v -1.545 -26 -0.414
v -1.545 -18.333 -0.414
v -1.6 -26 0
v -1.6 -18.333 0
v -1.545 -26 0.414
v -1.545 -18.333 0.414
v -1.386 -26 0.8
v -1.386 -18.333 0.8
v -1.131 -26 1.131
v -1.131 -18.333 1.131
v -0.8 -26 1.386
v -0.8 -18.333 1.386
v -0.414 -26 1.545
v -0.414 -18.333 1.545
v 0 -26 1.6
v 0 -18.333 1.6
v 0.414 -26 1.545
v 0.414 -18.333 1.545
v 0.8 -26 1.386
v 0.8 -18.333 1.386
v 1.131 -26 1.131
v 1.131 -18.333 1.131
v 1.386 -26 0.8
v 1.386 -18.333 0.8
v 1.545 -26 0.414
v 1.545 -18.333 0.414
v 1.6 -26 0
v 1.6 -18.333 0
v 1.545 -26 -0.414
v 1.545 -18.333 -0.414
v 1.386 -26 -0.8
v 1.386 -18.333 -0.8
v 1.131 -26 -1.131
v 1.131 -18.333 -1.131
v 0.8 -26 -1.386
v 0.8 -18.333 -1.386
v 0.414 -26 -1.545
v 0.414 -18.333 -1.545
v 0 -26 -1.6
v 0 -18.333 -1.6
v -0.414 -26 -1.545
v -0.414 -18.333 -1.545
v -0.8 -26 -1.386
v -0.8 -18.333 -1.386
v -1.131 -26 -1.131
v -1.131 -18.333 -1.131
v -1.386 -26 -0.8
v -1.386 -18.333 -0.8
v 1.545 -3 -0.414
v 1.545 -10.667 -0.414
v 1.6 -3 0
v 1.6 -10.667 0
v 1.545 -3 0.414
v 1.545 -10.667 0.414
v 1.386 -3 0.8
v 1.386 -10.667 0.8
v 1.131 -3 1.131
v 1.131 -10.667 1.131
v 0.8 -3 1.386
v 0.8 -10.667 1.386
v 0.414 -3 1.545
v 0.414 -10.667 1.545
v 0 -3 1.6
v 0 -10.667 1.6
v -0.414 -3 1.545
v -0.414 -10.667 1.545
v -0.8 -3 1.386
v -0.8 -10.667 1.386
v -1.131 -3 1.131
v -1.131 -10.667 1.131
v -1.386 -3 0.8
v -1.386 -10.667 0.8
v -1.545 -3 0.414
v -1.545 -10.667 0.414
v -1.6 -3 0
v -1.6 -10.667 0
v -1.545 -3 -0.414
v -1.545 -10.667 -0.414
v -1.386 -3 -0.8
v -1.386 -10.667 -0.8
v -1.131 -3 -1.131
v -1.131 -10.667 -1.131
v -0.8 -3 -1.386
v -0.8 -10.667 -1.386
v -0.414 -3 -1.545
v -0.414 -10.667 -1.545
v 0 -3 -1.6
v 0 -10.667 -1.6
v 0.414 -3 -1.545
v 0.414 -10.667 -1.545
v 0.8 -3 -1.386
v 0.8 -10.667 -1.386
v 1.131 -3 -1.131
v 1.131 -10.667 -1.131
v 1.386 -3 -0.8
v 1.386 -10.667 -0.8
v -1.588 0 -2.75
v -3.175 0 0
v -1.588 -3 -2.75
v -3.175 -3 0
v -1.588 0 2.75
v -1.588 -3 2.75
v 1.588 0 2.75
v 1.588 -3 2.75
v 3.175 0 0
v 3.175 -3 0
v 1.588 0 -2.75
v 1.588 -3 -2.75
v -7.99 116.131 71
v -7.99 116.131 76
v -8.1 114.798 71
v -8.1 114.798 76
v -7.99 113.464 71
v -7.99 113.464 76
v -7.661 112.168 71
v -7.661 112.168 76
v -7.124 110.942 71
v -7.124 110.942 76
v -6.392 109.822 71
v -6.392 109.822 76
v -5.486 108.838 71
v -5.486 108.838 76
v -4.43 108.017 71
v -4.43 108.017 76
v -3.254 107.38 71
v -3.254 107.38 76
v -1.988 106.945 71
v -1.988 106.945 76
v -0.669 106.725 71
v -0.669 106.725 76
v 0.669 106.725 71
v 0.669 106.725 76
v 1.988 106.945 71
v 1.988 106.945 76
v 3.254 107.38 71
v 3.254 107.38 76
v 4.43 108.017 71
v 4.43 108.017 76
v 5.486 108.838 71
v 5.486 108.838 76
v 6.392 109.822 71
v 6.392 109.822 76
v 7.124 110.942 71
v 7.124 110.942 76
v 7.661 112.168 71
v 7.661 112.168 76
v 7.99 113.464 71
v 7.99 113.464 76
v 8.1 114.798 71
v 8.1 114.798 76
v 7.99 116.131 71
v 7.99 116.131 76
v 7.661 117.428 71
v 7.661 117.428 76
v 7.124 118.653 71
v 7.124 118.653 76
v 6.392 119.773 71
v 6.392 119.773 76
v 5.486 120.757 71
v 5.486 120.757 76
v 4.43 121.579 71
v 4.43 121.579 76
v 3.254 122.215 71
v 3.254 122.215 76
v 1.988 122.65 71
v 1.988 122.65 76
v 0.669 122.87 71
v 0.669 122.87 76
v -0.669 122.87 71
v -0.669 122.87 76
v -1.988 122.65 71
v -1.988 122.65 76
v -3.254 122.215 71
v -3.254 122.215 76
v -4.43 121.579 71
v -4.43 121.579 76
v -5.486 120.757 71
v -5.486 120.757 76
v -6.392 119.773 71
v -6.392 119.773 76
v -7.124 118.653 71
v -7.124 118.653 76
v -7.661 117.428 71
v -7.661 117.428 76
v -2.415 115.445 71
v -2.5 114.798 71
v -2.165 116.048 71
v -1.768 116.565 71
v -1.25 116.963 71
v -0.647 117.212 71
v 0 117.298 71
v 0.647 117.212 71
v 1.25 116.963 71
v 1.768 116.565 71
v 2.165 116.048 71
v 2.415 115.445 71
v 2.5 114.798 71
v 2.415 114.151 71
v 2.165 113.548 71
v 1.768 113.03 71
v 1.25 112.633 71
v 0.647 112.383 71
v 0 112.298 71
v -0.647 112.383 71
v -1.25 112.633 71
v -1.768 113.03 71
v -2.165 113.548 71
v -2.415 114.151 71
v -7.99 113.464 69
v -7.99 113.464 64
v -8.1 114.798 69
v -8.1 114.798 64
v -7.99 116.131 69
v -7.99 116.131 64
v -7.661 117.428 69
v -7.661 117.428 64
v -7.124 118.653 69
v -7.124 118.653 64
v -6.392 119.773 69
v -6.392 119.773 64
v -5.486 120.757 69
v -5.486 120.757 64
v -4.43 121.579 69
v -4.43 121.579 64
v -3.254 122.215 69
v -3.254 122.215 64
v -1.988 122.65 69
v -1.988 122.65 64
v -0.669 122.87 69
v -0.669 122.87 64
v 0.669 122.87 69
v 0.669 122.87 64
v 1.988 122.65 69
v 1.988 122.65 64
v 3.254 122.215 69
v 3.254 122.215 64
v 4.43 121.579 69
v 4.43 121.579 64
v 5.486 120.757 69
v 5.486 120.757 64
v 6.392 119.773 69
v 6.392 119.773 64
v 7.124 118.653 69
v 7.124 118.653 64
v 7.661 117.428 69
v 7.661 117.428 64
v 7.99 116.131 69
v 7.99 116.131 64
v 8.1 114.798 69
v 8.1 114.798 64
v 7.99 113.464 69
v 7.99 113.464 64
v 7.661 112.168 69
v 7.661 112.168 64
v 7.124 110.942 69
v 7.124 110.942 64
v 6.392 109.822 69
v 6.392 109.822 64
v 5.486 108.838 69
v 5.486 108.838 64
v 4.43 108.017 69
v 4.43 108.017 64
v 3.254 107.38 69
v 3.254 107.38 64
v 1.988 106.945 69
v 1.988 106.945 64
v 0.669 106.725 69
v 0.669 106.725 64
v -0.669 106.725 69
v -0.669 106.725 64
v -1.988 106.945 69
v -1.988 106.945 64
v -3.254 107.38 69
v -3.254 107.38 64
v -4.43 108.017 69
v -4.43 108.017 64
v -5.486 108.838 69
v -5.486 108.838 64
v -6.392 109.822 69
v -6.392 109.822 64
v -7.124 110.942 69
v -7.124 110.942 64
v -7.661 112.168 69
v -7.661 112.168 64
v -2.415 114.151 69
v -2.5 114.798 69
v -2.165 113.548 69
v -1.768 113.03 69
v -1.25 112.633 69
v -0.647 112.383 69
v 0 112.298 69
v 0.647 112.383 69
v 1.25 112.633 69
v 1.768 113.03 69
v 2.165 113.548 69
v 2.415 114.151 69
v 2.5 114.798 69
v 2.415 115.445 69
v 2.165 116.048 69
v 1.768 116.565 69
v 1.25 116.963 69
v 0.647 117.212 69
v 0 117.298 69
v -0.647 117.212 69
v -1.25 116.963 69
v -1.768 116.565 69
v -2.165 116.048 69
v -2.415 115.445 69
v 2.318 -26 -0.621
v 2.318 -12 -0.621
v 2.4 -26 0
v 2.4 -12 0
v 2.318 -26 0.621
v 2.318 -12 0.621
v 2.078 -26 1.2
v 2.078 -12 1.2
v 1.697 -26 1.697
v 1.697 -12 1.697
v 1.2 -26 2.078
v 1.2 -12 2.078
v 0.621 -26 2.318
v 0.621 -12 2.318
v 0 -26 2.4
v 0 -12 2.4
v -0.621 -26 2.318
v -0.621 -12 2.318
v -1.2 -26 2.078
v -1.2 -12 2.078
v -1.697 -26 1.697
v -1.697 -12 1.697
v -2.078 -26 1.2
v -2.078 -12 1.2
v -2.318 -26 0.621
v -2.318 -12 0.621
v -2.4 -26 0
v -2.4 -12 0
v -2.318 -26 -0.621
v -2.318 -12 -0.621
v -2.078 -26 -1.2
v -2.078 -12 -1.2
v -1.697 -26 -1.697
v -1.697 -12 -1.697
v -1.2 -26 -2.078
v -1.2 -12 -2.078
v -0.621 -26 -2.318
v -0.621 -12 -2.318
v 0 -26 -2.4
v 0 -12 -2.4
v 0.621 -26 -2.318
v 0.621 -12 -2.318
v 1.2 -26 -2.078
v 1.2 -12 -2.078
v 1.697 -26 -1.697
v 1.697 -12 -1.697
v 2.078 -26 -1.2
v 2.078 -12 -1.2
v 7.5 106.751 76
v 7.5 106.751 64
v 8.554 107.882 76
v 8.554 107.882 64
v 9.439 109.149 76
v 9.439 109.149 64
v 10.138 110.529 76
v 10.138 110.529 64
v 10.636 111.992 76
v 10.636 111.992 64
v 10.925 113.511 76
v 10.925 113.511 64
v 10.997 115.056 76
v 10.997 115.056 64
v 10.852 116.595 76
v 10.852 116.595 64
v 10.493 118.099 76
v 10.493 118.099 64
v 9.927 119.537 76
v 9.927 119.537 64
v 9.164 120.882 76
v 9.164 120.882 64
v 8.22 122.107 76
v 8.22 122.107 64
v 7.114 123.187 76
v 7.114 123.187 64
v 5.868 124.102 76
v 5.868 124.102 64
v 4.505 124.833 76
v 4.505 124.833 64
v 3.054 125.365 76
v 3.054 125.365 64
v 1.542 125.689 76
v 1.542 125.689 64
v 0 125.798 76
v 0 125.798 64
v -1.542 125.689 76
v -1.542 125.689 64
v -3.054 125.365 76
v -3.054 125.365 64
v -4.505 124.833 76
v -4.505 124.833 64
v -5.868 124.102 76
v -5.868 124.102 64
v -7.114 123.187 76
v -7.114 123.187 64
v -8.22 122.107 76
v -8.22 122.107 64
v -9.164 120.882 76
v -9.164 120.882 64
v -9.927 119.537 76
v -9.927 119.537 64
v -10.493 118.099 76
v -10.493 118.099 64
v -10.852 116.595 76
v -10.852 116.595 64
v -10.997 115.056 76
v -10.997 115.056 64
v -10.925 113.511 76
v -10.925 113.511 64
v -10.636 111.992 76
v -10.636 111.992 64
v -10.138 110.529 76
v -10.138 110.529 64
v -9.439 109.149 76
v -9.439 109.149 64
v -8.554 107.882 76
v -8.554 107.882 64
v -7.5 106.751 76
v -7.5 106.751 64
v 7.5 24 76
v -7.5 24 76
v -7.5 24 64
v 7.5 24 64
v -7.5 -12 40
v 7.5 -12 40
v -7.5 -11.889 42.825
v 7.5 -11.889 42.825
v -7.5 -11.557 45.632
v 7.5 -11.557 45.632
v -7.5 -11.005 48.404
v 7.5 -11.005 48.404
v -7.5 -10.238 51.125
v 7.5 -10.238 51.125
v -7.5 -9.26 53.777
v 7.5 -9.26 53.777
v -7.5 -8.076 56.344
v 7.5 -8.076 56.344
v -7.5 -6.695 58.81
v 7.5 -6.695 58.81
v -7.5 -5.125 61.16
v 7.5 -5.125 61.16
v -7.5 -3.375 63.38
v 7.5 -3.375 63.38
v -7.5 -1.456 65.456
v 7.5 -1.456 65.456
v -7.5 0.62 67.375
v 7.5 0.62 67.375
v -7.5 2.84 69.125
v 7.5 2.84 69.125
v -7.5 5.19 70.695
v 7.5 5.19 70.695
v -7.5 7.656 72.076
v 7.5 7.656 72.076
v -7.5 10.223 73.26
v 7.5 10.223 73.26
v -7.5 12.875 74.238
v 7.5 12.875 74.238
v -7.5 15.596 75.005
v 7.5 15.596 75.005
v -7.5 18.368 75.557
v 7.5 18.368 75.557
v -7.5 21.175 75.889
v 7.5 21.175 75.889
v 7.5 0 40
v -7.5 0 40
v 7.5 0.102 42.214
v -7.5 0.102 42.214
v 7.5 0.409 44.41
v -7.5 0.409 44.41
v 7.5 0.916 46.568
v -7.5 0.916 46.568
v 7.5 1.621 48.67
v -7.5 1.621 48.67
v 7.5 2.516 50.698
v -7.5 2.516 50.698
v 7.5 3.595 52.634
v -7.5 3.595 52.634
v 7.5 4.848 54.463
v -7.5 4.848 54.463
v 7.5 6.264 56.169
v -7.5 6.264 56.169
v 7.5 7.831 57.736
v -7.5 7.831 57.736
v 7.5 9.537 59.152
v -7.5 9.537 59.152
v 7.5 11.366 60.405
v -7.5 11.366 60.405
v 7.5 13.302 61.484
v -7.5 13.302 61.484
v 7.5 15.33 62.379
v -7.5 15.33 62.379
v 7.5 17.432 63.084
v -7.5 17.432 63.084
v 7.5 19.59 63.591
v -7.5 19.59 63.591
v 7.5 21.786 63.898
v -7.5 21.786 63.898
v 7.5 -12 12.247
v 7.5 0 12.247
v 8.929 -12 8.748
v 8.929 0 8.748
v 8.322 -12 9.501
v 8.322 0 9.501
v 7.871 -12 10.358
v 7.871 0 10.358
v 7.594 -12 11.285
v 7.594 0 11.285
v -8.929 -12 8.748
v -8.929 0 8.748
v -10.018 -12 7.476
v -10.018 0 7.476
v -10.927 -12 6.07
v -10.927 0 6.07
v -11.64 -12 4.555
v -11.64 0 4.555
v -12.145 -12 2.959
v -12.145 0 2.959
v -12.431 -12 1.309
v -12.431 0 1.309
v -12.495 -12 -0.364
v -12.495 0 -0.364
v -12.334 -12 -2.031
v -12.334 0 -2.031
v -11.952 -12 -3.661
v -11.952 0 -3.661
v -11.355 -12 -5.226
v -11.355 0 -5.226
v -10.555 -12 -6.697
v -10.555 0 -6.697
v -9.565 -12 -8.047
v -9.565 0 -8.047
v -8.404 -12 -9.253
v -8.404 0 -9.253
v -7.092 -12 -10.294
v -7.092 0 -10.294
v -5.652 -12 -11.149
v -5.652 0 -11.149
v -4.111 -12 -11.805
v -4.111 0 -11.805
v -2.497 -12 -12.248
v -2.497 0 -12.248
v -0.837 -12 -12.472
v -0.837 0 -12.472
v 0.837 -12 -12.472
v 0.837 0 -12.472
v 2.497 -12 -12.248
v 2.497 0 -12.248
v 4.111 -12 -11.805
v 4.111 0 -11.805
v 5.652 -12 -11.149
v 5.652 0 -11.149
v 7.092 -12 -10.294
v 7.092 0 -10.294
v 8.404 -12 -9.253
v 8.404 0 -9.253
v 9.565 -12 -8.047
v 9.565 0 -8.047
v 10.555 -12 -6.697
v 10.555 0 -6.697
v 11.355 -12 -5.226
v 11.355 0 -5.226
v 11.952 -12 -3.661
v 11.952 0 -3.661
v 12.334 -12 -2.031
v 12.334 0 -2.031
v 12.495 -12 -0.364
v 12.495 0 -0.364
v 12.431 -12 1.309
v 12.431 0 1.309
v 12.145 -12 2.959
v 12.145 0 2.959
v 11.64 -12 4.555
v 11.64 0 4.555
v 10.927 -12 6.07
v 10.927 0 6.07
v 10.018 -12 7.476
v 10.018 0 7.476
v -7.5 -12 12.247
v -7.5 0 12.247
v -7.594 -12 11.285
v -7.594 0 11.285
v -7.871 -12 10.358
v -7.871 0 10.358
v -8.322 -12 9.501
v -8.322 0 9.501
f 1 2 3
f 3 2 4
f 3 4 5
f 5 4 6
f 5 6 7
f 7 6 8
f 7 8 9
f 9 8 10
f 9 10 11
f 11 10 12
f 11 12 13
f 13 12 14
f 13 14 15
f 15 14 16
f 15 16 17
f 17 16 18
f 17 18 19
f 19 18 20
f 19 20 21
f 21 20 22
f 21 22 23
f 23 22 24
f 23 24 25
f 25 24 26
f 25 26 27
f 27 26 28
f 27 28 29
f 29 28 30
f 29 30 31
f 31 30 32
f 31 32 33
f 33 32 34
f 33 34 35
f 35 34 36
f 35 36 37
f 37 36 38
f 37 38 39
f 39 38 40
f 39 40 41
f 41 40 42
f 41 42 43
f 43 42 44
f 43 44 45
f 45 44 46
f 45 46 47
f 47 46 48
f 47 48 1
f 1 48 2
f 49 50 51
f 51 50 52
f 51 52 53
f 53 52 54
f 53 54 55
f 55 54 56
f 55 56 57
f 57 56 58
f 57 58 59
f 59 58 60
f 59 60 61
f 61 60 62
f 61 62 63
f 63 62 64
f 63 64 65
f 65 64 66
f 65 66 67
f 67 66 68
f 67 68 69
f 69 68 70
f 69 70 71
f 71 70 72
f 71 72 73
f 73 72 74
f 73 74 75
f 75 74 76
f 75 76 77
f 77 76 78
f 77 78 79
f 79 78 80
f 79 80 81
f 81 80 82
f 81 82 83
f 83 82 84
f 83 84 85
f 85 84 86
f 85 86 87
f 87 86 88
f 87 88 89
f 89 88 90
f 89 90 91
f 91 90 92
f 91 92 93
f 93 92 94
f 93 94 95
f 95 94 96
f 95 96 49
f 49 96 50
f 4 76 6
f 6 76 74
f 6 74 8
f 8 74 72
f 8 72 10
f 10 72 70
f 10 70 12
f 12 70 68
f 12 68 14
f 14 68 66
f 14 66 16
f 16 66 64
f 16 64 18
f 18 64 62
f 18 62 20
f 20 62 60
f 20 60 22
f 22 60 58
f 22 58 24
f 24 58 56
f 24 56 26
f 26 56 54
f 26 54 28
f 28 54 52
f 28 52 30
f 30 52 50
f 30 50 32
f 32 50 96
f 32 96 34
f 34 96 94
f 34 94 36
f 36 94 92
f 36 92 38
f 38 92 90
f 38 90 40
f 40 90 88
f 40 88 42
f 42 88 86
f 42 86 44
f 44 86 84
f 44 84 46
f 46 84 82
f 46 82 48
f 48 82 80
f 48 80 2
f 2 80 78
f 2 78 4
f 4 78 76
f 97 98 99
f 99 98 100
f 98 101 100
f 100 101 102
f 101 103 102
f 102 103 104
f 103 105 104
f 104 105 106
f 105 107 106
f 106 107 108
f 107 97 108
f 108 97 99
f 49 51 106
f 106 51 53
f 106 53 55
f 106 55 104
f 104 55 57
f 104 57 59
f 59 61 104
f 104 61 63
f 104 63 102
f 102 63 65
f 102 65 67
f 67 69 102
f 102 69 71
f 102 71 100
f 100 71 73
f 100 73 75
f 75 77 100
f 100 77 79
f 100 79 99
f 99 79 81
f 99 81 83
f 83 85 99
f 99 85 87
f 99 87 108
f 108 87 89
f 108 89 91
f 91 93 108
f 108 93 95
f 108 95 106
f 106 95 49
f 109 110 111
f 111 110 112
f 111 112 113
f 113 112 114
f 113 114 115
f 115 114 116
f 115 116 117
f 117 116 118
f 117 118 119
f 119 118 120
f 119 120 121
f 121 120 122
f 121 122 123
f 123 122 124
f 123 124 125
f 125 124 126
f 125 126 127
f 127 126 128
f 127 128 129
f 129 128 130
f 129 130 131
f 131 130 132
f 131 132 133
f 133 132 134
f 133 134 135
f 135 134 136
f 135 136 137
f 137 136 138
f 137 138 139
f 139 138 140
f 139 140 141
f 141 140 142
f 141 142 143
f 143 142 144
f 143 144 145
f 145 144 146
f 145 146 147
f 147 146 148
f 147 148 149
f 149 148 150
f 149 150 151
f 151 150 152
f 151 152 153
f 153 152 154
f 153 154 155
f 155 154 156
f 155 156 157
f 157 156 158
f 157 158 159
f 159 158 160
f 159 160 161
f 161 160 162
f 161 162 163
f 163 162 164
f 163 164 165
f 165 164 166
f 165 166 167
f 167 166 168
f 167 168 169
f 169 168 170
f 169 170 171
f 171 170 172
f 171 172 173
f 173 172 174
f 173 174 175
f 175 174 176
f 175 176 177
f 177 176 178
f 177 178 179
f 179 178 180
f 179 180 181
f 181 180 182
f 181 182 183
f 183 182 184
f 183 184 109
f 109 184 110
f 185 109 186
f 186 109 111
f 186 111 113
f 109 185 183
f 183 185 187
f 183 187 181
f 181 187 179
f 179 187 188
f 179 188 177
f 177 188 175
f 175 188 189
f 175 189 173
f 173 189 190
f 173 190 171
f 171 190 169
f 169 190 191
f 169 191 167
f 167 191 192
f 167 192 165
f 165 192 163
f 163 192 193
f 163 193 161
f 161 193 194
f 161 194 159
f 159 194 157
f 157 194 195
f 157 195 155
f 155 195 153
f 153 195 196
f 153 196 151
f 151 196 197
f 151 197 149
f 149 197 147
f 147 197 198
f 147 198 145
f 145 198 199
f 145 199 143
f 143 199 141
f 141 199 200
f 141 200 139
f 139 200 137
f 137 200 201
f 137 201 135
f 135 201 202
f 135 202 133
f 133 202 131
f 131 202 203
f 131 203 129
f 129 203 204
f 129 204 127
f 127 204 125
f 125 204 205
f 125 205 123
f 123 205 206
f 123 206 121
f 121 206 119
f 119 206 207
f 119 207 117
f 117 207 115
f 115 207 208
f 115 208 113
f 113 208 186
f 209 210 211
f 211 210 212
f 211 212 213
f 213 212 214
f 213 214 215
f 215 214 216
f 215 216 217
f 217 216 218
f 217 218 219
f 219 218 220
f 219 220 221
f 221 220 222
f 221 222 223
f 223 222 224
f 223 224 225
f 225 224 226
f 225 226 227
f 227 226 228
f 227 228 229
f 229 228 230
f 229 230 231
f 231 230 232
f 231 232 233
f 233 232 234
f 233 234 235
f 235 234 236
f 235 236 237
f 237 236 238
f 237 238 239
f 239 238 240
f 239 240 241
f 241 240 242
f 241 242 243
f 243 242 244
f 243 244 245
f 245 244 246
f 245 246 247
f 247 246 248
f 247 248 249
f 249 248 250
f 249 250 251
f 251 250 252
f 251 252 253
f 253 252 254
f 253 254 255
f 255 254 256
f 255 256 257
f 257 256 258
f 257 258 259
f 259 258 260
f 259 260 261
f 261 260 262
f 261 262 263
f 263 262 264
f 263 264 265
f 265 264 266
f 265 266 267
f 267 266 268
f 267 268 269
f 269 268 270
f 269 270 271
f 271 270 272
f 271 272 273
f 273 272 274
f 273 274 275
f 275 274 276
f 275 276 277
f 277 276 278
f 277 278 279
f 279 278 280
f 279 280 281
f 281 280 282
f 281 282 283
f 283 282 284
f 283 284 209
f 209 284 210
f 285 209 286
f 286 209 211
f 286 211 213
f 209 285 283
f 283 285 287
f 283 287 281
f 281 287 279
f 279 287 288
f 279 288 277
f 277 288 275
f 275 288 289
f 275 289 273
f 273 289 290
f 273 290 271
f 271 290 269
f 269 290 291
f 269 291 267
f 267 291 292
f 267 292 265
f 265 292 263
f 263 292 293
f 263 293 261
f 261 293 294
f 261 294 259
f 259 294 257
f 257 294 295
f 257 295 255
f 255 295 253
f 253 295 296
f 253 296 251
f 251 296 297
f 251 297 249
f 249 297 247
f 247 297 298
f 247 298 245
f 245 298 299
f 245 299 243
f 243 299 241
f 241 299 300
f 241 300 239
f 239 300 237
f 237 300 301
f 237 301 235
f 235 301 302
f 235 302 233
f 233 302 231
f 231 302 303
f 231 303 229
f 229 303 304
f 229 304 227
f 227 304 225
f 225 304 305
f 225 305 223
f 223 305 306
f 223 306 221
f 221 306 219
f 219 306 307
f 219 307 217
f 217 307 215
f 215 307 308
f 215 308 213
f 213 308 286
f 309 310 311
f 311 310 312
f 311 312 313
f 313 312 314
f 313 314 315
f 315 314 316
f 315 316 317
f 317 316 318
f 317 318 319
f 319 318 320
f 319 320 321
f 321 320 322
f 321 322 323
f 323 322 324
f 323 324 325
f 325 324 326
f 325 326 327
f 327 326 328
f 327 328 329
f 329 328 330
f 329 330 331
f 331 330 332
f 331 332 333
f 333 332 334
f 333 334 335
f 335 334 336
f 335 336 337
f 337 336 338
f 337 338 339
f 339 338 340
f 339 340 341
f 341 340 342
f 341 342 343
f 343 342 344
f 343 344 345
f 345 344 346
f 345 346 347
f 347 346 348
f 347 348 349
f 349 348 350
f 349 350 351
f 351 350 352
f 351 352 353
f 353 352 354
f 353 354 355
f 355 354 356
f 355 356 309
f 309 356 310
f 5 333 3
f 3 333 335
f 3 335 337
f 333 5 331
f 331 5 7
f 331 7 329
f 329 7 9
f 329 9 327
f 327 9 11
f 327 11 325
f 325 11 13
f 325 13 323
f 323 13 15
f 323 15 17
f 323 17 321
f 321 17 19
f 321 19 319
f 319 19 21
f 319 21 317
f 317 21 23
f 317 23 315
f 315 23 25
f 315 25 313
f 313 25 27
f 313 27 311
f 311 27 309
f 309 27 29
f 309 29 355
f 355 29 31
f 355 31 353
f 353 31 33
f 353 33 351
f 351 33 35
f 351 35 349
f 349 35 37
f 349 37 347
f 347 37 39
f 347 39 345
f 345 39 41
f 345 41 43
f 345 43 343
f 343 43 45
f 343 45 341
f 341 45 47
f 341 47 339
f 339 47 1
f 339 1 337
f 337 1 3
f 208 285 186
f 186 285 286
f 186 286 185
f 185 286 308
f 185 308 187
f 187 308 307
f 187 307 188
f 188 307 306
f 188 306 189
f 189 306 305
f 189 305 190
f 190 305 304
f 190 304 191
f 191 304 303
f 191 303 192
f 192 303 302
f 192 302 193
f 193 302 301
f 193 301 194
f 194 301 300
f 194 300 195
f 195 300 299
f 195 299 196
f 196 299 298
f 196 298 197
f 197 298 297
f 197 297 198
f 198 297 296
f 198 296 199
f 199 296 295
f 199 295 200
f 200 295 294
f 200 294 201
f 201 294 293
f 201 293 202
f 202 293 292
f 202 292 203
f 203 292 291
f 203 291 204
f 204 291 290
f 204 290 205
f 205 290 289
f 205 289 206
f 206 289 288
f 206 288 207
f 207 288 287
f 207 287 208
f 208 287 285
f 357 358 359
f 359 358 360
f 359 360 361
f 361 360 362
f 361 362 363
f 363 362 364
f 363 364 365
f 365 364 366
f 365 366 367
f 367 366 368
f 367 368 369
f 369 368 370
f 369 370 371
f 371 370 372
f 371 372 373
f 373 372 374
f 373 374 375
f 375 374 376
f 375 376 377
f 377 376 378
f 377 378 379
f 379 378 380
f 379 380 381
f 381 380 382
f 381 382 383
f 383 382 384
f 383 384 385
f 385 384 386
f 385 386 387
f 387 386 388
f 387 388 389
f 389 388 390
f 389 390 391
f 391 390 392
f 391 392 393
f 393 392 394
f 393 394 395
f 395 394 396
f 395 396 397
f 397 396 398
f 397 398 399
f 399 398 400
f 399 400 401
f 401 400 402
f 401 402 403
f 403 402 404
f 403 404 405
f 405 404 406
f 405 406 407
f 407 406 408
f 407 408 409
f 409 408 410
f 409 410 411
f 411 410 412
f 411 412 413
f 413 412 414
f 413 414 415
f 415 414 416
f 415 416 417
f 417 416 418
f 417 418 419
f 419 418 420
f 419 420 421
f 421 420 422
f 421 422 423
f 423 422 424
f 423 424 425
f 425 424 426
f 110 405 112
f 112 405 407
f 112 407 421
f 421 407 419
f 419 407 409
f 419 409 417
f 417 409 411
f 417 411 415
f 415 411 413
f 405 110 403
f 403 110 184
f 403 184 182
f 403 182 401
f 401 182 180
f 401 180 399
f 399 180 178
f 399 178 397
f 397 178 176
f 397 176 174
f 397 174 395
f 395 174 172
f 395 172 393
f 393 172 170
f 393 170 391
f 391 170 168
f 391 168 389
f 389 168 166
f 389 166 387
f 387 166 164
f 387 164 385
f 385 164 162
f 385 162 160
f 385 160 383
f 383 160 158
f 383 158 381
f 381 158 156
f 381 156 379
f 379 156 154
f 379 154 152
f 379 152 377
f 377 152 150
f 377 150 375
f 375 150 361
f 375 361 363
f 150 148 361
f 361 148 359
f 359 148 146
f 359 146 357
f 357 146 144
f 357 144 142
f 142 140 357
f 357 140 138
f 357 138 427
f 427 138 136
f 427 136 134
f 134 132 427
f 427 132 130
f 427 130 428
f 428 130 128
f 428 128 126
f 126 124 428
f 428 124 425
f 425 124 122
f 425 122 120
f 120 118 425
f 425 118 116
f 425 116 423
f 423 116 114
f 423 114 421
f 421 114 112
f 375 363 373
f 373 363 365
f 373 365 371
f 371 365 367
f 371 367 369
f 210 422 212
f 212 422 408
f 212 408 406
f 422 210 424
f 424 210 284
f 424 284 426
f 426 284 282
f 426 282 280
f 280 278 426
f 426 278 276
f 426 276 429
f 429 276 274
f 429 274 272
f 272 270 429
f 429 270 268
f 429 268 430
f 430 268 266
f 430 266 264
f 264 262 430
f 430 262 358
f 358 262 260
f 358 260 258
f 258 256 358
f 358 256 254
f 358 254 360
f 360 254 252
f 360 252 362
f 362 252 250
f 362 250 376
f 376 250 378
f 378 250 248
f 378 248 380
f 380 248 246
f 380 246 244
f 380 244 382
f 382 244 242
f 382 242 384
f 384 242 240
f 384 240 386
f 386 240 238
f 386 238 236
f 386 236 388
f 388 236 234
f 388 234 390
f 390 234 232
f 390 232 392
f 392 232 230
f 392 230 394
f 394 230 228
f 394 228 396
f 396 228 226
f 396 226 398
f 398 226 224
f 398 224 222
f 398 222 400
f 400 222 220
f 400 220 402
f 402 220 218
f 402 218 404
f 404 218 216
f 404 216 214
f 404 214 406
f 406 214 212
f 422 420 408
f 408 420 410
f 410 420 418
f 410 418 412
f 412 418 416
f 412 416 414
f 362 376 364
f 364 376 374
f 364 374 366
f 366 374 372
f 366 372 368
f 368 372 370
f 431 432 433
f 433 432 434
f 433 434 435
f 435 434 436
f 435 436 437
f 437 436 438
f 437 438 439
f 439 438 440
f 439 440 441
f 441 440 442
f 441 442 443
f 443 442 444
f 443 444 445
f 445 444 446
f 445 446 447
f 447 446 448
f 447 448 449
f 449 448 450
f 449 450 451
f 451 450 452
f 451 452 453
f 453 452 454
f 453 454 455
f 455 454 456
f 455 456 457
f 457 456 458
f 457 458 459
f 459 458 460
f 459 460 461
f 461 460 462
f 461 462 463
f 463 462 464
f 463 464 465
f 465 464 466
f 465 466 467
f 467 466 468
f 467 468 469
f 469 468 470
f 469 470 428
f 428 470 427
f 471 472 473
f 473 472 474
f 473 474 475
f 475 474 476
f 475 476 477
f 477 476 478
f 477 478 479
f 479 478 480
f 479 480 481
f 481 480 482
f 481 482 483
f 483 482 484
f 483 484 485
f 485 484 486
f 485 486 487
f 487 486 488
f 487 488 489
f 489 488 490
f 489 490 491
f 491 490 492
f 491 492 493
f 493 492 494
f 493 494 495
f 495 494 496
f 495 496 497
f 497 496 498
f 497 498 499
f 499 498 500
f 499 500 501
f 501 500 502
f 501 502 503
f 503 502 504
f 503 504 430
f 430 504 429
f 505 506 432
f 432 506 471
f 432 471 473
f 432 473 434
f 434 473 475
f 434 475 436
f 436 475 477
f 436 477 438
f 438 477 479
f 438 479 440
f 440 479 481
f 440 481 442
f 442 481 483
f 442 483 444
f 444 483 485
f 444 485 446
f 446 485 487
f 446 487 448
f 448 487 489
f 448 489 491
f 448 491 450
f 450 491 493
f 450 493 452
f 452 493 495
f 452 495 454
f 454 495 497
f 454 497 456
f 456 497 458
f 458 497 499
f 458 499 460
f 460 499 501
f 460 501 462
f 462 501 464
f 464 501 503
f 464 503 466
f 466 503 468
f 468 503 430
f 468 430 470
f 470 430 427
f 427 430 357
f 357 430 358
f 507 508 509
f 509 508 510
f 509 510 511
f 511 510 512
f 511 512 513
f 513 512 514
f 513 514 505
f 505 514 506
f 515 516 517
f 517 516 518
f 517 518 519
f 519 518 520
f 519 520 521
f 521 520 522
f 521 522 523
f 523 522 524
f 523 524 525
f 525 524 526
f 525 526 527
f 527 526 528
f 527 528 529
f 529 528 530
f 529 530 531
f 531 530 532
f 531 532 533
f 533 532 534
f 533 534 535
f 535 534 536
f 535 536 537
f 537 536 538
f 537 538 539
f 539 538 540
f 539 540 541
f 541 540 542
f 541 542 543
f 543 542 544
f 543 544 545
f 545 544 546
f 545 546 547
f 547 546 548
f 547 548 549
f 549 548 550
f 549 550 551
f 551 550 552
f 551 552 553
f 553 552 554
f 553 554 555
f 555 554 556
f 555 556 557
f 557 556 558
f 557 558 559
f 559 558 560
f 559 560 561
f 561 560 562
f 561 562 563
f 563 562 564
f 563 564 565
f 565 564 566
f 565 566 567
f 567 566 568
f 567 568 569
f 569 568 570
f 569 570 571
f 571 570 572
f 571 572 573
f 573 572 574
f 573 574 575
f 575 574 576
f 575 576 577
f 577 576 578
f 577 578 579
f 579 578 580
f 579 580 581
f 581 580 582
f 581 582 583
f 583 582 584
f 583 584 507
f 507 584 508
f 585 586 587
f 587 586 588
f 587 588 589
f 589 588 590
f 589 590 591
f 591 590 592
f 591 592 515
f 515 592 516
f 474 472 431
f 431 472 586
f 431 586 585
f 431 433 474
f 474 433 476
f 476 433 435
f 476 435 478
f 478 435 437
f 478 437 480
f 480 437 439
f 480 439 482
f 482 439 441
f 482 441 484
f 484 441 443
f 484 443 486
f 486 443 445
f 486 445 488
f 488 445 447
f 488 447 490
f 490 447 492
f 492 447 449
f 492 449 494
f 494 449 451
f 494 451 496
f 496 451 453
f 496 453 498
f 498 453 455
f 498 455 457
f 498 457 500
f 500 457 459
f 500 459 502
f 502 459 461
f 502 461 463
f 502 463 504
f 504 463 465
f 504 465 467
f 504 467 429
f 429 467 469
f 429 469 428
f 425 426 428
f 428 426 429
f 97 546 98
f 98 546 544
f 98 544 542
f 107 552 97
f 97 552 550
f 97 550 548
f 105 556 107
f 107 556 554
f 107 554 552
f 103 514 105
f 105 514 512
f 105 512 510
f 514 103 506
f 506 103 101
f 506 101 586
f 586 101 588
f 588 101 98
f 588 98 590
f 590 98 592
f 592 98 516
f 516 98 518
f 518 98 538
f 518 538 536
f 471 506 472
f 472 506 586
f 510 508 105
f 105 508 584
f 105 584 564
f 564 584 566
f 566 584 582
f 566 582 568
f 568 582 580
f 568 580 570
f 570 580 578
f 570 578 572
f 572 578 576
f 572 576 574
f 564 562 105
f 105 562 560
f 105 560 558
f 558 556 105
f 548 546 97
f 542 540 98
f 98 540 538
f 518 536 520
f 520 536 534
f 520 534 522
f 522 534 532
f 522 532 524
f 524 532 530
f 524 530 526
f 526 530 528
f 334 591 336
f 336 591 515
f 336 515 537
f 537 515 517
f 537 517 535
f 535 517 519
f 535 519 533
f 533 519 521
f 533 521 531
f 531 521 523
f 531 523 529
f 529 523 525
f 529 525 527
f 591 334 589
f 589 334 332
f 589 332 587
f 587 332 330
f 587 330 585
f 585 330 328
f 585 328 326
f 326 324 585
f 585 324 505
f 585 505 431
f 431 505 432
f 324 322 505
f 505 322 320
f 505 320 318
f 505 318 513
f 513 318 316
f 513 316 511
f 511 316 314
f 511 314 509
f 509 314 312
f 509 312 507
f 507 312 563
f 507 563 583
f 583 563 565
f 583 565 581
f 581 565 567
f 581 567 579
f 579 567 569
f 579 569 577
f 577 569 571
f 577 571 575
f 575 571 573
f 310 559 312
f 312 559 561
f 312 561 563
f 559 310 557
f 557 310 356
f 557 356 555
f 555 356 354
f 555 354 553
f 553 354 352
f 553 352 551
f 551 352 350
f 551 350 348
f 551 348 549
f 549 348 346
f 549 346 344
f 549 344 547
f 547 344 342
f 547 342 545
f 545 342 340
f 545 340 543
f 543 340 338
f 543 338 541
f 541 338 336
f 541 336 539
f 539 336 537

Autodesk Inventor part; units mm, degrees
ref_plane "YZ Plane" through (0, 0, 0) normal (1, 0, 0) x (0, 1, 0)
ref_plane "XZ Plane" through (0, 0, 0) normal (0, 1, 0) x (-1, 0, 0)
sketch "Sketch1" plane through (0, 0, 0) normal (0, 1, 0) x (-1, 0, 0)
  arc A0 (-8.9286, 8.7482) -> (8.9286, 8.7482) centre (0, 0) ccw
  line L0 (-7.5, 12.2474) -> (-7.5, 20)
  line L1 (7.5, 20) -> (7.5, 12.2474)
  line L2 (7.5, 20) -> (-7.5, 20)
  arc A1 (7.5, 12.2474) -> (8.9286, 8.7482) centre (12.5, 12.2474) ccw
  arc A2 (-8.9286, 8.7482) -> (-7.5, 12.2474) centre (-12.5, 12.2474) ccw
  point P0 (7.5, 10)
  point P1 (-7.5, 10)
  point P2 (0, 10)
  point P3 (0, 20)
  dimension "d0" = 25
  dimension "d109" = 5
  dimension "d129" = 15
  dimension "d131" = 10
extrude "Extrusion1" add sketch "Sketch1" against normal blind 12
sketch "Sketch22" plane through (-7.5, 0, 20) normal (0, 0, 1) x (1, 0, 0)
  line L0 (0, 0) -> (0, -12) projected
  line L1 (15, -12) -> (0, -12) projected
  line L2 (0, 0) -> (15, 0)
  line L3 (15, 0) -> (15, -12)
  line L4 (15, -12) -> (0, -12)
  line L5 (0, -12) -> (0, 0)
  point P0 (7.5, 0)
sketch "Sketch23" plane through (0, 0, 0) normal (1, 0, 0) x (0, 1, 0)
  line L0 (0, 20) -> (-12, 20) projected
  line L1 (-6, 20) -> (-6, 40)
  line L2 (24, 70) -> (102.7976, 70)
  arc A0 (24, 70) -> (-6, 40) centre (24, 40) ccw
  point P0 (0, 0)
  point P1 (-6, 70)
  dimension "d110" = 50
  dimension "d111" = 108.7976
  dimension "d112" = 90
  dimension "d113" = 30
sweep "Sweep2" add profiles "Sketch22" path "Sketch23" path curves L1 A0 L2
ref_plane "Work Plane11" through (7.5, 24, 70) normal (0, 0, -1) x (-1, 0, 0)
sketch "Sketch24" plane through (7.5, 24, 70) normal (0, 0, -1) x (-1, 0, 0)
  line L0 (0, 78.7976) -> (15, 78.7976)
  line L1 (0, 78.7976) -> (15, 78.7976)
  line L2 (0, 78.7976) -> (0, 82.7508)
  line L3 (15, 78.7976) -> (15, 82.7508)
  arc A0 (15, 82.7508) -> (0, 82.7508) centre (7.5, 90.7976) ccw
  line L4 (0, 78.7976) -> (15, 78.7976) projected
  point P0 (7.5, -24)
  point P1 (7.5, 78.7976)
  point P2 (7.5, 78.7976)
  dimension "d139" = 22
  dimension "d140" = 12
  dimension "d141" = 15
extrude "Extrusion17" add sketch "Sketch24" along normal mid plane 12
sketch "Sketch25" plane through (-7.5, 24, 76) normal (0, 0, 1) x (1, 0, 0)
  circle A0 centre (7.5, 90.7976) radius 2.5
  arc A1 (15, 82.7508) -> (0, 82.7508) centre (7.5, 90.7976) ccw projected
  point P0 (7.5, -24)
  dimension "d123" = 5
extrude "Extrusion18" cut sketch "Sketch25" against normal through all
sketch "Sketch27" plane through (0, 0, 0) normal (0, 1, 0) x (1, 0, 0)
  arc A0 (8.9286, -8.7482) -> (-8.9286, -8.7482) centre (0, 0) ccw projected
  circle A1 centre (0, 0) radius 2.4
  dimension "d136" = 4.8
extrude "Extrusion20" add sketch "Sketch27" against normal blind 26
sketch "Sketch28" plane through (7.5, 24, 64) normal (0, 0, -1) x (-1, 0, 0)
  arc A0 (15, 82.7508) -> (0, 82.7508) centre (7.5, 90.7976) ccw projected
  circle A1 centre (7.5, 90.7976) radius 8.1
  point P0 (7.5, -24)
  dimension "d142" = 16.2
extrude "Extrusion21" cut sketch "Sketch28" against normal blind 5
mirror "Mirror2" about plane through (7.5, 24, 70) normal (0, 0, -1) of "Extrusion21"
sketch "Sketch29" plane through (0, 0, 0) normal (0, 1, 0) x (1, 0, 0)
  line L0 (3.1754, 0) -> (1.5877, -2.75)
  line L1 (1.5877, -2.75) -> (-1.5877, -2.75)
  line L2 (-1.5877, -2.75) -> (-3.1754, 0)
  line L3 (-3.1754, 0) -> (-1.5877, 2.75)
  line L4 (-1.5877, 2.75) -> (1.5877, 2.75)
  line L5 (1.5877, 2.75) -> (3.1754, 0)
  point P0 (0, 0)
  point P1 (0, 0)
  dimension "d145" = 5.5
extrude "Extrusion22" cut sketch "Sketch29" against normal blind 3
sketch "Sketch30" plane through (0, -3, 0) normal (0, 1, 0) x (1, 0, 0)
  circle A0 centre (0, 0) radius 1.6
  dimension "d148" = 3.2
extrude "Extrusion23" cut sketch "Sketch30" against normal through all
properties part number "distall_link_3"
